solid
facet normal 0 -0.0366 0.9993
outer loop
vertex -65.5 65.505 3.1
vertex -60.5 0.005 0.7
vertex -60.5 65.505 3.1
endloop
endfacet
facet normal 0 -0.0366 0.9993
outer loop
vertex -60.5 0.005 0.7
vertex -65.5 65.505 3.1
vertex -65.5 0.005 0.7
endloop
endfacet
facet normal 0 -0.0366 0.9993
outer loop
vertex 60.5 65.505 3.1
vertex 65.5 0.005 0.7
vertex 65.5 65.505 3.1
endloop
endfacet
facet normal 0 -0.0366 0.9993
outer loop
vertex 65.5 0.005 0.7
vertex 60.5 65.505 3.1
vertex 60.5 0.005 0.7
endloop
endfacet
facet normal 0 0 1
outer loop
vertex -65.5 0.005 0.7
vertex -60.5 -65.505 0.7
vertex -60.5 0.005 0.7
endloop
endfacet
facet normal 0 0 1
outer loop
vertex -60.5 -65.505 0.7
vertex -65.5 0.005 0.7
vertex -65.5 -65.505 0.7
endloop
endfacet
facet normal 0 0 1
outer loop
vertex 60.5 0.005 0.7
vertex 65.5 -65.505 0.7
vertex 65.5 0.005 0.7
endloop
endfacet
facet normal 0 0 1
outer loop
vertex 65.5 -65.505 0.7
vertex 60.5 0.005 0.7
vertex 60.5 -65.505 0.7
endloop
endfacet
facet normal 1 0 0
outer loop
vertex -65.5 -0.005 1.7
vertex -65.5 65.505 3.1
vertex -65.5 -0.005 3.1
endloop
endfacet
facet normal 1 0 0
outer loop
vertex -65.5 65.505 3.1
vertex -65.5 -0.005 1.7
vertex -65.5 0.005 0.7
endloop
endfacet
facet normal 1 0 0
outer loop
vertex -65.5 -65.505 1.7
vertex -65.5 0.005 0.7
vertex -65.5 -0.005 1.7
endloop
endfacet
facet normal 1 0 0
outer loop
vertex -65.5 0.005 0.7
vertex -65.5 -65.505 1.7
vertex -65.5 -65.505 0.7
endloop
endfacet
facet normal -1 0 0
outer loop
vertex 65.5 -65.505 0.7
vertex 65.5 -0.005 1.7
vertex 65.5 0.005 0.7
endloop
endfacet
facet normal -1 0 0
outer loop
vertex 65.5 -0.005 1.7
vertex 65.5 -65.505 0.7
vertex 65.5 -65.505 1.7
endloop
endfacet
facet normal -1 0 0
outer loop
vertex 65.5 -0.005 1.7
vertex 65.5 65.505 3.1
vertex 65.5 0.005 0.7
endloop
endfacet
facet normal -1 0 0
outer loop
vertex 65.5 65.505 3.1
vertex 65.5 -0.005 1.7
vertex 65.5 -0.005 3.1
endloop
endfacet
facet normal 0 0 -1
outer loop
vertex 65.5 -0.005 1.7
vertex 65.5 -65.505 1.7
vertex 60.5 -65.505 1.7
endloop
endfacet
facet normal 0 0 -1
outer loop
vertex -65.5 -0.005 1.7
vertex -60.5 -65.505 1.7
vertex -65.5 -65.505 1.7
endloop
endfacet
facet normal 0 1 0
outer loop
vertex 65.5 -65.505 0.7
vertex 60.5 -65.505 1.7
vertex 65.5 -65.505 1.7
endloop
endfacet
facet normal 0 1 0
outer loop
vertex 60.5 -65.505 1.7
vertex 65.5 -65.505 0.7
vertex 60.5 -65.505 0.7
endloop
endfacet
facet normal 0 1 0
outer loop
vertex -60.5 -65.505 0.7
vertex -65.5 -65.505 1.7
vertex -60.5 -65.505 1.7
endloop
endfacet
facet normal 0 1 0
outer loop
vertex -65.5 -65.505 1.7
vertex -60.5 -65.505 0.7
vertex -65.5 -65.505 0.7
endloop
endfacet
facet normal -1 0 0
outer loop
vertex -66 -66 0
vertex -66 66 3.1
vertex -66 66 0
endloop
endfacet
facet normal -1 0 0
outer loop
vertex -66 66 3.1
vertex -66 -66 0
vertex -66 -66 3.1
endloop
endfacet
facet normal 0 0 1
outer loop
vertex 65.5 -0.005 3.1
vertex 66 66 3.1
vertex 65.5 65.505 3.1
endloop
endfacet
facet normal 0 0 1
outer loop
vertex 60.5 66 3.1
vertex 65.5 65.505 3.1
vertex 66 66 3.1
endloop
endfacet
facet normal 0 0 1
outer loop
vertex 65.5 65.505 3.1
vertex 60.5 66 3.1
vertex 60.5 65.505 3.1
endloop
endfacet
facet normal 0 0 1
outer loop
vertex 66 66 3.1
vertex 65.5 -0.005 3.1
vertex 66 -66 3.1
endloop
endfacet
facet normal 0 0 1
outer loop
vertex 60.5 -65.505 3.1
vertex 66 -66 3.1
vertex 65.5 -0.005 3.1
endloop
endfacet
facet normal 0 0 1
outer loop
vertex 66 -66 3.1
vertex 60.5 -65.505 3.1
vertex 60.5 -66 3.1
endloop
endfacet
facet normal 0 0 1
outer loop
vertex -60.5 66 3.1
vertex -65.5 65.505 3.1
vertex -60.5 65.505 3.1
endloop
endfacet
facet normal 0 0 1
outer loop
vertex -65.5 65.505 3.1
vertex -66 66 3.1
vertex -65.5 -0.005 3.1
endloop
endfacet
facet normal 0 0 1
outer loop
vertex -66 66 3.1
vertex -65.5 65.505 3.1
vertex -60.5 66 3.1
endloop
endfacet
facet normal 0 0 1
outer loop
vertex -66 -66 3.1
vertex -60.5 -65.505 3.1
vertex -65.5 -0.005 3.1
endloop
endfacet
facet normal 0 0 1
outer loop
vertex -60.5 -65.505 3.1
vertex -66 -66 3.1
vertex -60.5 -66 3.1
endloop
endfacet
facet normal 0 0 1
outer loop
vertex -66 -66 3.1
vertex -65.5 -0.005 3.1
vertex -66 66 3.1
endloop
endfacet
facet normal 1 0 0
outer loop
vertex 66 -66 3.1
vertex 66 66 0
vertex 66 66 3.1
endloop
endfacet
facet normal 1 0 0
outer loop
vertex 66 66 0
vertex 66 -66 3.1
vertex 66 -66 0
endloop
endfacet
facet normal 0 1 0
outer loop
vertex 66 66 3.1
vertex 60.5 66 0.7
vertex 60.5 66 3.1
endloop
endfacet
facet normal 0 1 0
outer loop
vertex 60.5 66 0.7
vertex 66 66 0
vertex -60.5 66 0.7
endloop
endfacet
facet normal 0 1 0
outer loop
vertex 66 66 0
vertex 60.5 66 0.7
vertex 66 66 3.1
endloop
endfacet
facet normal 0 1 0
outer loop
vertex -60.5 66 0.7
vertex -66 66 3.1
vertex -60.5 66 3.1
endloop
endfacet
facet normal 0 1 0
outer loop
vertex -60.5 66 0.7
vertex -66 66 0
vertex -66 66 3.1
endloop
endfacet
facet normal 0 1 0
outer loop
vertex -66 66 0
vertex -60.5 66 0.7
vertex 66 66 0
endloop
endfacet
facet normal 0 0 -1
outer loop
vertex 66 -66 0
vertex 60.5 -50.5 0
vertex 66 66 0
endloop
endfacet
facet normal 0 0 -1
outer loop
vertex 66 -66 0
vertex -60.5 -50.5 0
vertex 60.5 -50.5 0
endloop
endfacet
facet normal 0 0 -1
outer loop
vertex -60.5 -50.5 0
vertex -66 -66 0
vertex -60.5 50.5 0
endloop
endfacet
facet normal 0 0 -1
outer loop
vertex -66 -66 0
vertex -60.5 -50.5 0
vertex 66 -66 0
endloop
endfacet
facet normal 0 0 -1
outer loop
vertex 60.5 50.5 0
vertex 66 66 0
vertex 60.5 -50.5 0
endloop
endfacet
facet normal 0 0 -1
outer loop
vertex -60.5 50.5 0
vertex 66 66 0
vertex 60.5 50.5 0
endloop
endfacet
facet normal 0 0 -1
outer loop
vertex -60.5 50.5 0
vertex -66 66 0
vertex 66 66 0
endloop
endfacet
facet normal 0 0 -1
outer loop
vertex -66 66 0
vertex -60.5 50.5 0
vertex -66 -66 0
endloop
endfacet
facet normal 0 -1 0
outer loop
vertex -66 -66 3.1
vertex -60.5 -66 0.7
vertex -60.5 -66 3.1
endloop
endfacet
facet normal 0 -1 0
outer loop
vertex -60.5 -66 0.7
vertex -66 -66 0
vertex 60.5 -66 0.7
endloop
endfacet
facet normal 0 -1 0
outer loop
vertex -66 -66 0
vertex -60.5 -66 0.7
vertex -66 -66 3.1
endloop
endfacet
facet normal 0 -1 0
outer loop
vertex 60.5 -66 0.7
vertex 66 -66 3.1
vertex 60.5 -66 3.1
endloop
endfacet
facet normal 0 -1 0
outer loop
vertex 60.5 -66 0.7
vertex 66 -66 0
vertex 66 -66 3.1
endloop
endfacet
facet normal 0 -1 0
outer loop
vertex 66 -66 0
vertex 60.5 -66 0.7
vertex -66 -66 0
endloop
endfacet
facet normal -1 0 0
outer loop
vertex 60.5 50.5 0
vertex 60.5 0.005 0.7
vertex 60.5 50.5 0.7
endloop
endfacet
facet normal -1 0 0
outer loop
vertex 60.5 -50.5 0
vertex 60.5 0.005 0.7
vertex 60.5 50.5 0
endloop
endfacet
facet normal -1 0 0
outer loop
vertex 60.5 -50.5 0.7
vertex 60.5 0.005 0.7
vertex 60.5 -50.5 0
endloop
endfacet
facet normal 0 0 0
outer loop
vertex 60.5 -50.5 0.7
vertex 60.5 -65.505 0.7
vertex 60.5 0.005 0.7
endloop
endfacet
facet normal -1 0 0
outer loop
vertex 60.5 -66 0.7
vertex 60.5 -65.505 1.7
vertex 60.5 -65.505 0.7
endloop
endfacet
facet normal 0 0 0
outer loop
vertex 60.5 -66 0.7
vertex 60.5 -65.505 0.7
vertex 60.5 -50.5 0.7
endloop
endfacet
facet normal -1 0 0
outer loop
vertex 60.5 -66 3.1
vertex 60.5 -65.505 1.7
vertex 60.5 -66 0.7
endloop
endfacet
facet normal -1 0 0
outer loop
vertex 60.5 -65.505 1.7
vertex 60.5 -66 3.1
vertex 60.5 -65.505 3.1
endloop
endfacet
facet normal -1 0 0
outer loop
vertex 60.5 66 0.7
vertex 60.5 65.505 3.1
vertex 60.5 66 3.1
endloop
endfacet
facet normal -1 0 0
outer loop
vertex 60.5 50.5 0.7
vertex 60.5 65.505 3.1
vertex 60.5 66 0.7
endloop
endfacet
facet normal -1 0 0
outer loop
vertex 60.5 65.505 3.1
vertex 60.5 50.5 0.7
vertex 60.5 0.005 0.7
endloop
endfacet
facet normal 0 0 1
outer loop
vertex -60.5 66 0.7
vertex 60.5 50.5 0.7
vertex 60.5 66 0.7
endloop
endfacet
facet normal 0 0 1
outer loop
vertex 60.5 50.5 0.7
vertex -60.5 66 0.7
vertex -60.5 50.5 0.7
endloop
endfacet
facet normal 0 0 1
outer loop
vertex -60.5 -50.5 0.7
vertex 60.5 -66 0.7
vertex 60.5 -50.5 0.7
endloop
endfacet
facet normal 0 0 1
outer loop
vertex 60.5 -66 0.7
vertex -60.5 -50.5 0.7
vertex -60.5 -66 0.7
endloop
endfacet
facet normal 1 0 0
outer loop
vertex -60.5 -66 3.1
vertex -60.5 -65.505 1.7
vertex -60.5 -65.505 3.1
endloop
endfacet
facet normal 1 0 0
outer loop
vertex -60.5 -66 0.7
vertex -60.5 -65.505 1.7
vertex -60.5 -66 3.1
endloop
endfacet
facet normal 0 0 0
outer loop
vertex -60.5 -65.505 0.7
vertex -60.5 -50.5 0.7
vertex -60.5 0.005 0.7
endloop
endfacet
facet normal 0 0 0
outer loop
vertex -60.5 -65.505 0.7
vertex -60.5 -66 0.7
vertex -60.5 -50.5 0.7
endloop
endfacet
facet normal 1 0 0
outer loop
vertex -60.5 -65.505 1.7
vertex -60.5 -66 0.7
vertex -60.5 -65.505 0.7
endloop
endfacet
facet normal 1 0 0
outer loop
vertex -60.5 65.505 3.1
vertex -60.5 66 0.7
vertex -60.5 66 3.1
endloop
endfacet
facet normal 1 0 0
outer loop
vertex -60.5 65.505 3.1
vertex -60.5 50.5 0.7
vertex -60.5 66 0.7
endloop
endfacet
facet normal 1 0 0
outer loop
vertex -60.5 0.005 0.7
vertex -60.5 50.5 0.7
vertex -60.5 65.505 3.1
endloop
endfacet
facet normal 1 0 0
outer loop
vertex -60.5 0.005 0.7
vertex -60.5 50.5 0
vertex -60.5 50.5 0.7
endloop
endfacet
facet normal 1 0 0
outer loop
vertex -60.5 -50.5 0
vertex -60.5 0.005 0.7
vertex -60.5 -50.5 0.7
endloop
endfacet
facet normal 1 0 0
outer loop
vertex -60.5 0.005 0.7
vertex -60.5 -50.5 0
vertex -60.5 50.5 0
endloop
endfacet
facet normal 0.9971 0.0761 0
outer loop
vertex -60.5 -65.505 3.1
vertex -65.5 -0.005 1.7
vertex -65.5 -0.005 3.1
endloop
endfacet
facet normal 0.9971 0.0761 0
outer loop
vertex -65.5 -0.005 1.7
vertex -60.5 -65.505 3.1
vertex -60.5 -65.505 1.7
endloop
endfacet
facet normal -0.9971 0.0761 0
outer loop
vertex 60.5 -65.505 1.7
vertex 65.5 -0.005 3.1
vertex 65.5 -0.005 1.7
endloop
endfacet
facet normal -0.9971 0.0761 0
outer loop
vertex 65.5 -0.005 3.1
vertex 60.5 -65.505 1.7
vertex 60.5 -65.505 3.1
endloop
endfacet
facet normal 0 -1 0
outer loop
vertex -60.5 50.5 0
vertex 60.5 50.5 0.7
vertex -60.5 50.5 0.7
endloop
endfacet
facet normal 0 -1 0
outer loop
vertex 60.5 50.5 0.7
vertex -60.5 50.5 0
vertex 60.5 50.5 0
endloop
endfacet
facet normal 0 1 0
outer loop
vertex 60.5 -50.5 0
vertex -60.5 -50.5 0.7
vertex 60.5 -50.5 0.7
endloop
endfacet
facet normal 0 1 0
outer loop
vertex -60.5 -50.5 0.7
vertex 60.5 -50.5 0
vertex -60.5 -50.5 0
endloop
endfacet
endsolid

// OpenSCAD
// Wall Mounted Single Card Holder For 13cm square photos for gameboy gallery (Derived from business card wall mount source)
// By Brian Khuu 2022-04-10
// Note: Adjusted to have enough space for command strips (2cmm on each side)

print_layer_height = 0.2;

// Businesscard
// Default values based on https://www.mbe.com.au/what-is-the-standard-business-card-size-in-australia/
businesscard_width = 131; // 130mm plus some tolerance
businesscard_height = 131; // 130mm plus some tolerance
businesscard_thickness = 1.0;

// Holder
wall_spacing = 1;
wall_card_grip = 10;
wall_x_count = 1; //2
wall_y_count = 1; //3

// Calc
wall_base = print_layer_height*3+0.1;
wall_top = print_layer_height*3+0.1;
wall_height = wall_base + businesscard_thickness + wall_top*2;

module cardWindowOutline()
{
    hull()
    {
        translate([0,businesscard_height/2,businesscard_thickness + wall_top*2])
        cube([businesscard_width, 0.01, 0.01], center = true);
        translate([0,0,0])
        cube([businesscard_width, 0.01, 0.01], center = true);
    }
    hull()
    {
        translate([0,0,businesscard_thickness + wall_top*2])
        cube([businesscard_width, 0.01, 0.01], center = true);
        translate([0,-businesscard_height/2,0])
        cube([businesscard_width-wall_card_grip, 0.01, 0.01], center = true);
    }
}

module cardholder(reducePlastic=false)
{
    if (0)
    translate([0,0,wall_base+businesscard_thickness])
        rotate([2,0,0])
        %cube([130, 130, 0.1], center = true);

    difference()
    {
        translate([0,0,wall_height/2])
            cube([businesscard_width+wall_spacing, businesscard_height+wall_spacing, wall_height], center = true);

        // Card Slide
        translate([0,0,wall_base])
        translate([0,0,businesscard_thickness/2])
        {
            // Upper
            hull()
            {
                translate([0,businesscard_height/2,businesscard_thickness + wall_top*2])
                cube([businesscard_width, 0.01, businesscard_thickness], center = true);

                translate([0,0,0])
                cube([businesscard_width, 0.01, businesscard_thickness], center = true);
            }
            // Lower
            hull()
            {
                translate([0,-businesscard_height/2,0])
                cube([businesscard_width, 0.01, businesscard_thickness], center = true);

                cube([businesscard_width, 0.01, businesscard_thickness], center = true);
            }
        }

        // Grip
        translate([0,0,wall_height/2+wall_base])
            hull()
            {
                translate([0,businesscard_height,0])
                cube([businesscard_width-wall_card_grip, 0.01, wall_height], center = true);

                translate([0,-businesscard_height,0])
                cube([businesscard_width-wall_card_grip, 0.01, wall_height], center = true);
            }


        // Card Window
        translate([0,0,wall_base+businesscard_thickness/2])
        {
            hull()
            {
                // Card Window Base
                cardWindowOutline();
                // Card Window Top
                translate([0,0,businesscard_thickness + wall_top * 2])
                    cardWindowOutline();
            }
        }

        // Reduce Plastic
        if (reducePlastic)
        translate([0,0,wall_base+businesscard_thickness/2+0.5])
        {
            //cube([businesscard_width-40,businesscard_height-30, wall_height+1], center=true);
            cube([businesscard_width-wall_card_grip,businesscard_height-30, wall_height+1], center=true);
        }
    }
}

if (wall_x_count == 1 && wall_y_count == 1)
{
    cardholder(true);
}
else
{
    for (x = [1: 1 : wall_x_count])
        for (y = [1 : 1 : wall_y_count])
           translate([x*(businesscard_width+wall_spacing), y*(businesscard_height+wall_spacing), 0])
                cardholder(false);
}
